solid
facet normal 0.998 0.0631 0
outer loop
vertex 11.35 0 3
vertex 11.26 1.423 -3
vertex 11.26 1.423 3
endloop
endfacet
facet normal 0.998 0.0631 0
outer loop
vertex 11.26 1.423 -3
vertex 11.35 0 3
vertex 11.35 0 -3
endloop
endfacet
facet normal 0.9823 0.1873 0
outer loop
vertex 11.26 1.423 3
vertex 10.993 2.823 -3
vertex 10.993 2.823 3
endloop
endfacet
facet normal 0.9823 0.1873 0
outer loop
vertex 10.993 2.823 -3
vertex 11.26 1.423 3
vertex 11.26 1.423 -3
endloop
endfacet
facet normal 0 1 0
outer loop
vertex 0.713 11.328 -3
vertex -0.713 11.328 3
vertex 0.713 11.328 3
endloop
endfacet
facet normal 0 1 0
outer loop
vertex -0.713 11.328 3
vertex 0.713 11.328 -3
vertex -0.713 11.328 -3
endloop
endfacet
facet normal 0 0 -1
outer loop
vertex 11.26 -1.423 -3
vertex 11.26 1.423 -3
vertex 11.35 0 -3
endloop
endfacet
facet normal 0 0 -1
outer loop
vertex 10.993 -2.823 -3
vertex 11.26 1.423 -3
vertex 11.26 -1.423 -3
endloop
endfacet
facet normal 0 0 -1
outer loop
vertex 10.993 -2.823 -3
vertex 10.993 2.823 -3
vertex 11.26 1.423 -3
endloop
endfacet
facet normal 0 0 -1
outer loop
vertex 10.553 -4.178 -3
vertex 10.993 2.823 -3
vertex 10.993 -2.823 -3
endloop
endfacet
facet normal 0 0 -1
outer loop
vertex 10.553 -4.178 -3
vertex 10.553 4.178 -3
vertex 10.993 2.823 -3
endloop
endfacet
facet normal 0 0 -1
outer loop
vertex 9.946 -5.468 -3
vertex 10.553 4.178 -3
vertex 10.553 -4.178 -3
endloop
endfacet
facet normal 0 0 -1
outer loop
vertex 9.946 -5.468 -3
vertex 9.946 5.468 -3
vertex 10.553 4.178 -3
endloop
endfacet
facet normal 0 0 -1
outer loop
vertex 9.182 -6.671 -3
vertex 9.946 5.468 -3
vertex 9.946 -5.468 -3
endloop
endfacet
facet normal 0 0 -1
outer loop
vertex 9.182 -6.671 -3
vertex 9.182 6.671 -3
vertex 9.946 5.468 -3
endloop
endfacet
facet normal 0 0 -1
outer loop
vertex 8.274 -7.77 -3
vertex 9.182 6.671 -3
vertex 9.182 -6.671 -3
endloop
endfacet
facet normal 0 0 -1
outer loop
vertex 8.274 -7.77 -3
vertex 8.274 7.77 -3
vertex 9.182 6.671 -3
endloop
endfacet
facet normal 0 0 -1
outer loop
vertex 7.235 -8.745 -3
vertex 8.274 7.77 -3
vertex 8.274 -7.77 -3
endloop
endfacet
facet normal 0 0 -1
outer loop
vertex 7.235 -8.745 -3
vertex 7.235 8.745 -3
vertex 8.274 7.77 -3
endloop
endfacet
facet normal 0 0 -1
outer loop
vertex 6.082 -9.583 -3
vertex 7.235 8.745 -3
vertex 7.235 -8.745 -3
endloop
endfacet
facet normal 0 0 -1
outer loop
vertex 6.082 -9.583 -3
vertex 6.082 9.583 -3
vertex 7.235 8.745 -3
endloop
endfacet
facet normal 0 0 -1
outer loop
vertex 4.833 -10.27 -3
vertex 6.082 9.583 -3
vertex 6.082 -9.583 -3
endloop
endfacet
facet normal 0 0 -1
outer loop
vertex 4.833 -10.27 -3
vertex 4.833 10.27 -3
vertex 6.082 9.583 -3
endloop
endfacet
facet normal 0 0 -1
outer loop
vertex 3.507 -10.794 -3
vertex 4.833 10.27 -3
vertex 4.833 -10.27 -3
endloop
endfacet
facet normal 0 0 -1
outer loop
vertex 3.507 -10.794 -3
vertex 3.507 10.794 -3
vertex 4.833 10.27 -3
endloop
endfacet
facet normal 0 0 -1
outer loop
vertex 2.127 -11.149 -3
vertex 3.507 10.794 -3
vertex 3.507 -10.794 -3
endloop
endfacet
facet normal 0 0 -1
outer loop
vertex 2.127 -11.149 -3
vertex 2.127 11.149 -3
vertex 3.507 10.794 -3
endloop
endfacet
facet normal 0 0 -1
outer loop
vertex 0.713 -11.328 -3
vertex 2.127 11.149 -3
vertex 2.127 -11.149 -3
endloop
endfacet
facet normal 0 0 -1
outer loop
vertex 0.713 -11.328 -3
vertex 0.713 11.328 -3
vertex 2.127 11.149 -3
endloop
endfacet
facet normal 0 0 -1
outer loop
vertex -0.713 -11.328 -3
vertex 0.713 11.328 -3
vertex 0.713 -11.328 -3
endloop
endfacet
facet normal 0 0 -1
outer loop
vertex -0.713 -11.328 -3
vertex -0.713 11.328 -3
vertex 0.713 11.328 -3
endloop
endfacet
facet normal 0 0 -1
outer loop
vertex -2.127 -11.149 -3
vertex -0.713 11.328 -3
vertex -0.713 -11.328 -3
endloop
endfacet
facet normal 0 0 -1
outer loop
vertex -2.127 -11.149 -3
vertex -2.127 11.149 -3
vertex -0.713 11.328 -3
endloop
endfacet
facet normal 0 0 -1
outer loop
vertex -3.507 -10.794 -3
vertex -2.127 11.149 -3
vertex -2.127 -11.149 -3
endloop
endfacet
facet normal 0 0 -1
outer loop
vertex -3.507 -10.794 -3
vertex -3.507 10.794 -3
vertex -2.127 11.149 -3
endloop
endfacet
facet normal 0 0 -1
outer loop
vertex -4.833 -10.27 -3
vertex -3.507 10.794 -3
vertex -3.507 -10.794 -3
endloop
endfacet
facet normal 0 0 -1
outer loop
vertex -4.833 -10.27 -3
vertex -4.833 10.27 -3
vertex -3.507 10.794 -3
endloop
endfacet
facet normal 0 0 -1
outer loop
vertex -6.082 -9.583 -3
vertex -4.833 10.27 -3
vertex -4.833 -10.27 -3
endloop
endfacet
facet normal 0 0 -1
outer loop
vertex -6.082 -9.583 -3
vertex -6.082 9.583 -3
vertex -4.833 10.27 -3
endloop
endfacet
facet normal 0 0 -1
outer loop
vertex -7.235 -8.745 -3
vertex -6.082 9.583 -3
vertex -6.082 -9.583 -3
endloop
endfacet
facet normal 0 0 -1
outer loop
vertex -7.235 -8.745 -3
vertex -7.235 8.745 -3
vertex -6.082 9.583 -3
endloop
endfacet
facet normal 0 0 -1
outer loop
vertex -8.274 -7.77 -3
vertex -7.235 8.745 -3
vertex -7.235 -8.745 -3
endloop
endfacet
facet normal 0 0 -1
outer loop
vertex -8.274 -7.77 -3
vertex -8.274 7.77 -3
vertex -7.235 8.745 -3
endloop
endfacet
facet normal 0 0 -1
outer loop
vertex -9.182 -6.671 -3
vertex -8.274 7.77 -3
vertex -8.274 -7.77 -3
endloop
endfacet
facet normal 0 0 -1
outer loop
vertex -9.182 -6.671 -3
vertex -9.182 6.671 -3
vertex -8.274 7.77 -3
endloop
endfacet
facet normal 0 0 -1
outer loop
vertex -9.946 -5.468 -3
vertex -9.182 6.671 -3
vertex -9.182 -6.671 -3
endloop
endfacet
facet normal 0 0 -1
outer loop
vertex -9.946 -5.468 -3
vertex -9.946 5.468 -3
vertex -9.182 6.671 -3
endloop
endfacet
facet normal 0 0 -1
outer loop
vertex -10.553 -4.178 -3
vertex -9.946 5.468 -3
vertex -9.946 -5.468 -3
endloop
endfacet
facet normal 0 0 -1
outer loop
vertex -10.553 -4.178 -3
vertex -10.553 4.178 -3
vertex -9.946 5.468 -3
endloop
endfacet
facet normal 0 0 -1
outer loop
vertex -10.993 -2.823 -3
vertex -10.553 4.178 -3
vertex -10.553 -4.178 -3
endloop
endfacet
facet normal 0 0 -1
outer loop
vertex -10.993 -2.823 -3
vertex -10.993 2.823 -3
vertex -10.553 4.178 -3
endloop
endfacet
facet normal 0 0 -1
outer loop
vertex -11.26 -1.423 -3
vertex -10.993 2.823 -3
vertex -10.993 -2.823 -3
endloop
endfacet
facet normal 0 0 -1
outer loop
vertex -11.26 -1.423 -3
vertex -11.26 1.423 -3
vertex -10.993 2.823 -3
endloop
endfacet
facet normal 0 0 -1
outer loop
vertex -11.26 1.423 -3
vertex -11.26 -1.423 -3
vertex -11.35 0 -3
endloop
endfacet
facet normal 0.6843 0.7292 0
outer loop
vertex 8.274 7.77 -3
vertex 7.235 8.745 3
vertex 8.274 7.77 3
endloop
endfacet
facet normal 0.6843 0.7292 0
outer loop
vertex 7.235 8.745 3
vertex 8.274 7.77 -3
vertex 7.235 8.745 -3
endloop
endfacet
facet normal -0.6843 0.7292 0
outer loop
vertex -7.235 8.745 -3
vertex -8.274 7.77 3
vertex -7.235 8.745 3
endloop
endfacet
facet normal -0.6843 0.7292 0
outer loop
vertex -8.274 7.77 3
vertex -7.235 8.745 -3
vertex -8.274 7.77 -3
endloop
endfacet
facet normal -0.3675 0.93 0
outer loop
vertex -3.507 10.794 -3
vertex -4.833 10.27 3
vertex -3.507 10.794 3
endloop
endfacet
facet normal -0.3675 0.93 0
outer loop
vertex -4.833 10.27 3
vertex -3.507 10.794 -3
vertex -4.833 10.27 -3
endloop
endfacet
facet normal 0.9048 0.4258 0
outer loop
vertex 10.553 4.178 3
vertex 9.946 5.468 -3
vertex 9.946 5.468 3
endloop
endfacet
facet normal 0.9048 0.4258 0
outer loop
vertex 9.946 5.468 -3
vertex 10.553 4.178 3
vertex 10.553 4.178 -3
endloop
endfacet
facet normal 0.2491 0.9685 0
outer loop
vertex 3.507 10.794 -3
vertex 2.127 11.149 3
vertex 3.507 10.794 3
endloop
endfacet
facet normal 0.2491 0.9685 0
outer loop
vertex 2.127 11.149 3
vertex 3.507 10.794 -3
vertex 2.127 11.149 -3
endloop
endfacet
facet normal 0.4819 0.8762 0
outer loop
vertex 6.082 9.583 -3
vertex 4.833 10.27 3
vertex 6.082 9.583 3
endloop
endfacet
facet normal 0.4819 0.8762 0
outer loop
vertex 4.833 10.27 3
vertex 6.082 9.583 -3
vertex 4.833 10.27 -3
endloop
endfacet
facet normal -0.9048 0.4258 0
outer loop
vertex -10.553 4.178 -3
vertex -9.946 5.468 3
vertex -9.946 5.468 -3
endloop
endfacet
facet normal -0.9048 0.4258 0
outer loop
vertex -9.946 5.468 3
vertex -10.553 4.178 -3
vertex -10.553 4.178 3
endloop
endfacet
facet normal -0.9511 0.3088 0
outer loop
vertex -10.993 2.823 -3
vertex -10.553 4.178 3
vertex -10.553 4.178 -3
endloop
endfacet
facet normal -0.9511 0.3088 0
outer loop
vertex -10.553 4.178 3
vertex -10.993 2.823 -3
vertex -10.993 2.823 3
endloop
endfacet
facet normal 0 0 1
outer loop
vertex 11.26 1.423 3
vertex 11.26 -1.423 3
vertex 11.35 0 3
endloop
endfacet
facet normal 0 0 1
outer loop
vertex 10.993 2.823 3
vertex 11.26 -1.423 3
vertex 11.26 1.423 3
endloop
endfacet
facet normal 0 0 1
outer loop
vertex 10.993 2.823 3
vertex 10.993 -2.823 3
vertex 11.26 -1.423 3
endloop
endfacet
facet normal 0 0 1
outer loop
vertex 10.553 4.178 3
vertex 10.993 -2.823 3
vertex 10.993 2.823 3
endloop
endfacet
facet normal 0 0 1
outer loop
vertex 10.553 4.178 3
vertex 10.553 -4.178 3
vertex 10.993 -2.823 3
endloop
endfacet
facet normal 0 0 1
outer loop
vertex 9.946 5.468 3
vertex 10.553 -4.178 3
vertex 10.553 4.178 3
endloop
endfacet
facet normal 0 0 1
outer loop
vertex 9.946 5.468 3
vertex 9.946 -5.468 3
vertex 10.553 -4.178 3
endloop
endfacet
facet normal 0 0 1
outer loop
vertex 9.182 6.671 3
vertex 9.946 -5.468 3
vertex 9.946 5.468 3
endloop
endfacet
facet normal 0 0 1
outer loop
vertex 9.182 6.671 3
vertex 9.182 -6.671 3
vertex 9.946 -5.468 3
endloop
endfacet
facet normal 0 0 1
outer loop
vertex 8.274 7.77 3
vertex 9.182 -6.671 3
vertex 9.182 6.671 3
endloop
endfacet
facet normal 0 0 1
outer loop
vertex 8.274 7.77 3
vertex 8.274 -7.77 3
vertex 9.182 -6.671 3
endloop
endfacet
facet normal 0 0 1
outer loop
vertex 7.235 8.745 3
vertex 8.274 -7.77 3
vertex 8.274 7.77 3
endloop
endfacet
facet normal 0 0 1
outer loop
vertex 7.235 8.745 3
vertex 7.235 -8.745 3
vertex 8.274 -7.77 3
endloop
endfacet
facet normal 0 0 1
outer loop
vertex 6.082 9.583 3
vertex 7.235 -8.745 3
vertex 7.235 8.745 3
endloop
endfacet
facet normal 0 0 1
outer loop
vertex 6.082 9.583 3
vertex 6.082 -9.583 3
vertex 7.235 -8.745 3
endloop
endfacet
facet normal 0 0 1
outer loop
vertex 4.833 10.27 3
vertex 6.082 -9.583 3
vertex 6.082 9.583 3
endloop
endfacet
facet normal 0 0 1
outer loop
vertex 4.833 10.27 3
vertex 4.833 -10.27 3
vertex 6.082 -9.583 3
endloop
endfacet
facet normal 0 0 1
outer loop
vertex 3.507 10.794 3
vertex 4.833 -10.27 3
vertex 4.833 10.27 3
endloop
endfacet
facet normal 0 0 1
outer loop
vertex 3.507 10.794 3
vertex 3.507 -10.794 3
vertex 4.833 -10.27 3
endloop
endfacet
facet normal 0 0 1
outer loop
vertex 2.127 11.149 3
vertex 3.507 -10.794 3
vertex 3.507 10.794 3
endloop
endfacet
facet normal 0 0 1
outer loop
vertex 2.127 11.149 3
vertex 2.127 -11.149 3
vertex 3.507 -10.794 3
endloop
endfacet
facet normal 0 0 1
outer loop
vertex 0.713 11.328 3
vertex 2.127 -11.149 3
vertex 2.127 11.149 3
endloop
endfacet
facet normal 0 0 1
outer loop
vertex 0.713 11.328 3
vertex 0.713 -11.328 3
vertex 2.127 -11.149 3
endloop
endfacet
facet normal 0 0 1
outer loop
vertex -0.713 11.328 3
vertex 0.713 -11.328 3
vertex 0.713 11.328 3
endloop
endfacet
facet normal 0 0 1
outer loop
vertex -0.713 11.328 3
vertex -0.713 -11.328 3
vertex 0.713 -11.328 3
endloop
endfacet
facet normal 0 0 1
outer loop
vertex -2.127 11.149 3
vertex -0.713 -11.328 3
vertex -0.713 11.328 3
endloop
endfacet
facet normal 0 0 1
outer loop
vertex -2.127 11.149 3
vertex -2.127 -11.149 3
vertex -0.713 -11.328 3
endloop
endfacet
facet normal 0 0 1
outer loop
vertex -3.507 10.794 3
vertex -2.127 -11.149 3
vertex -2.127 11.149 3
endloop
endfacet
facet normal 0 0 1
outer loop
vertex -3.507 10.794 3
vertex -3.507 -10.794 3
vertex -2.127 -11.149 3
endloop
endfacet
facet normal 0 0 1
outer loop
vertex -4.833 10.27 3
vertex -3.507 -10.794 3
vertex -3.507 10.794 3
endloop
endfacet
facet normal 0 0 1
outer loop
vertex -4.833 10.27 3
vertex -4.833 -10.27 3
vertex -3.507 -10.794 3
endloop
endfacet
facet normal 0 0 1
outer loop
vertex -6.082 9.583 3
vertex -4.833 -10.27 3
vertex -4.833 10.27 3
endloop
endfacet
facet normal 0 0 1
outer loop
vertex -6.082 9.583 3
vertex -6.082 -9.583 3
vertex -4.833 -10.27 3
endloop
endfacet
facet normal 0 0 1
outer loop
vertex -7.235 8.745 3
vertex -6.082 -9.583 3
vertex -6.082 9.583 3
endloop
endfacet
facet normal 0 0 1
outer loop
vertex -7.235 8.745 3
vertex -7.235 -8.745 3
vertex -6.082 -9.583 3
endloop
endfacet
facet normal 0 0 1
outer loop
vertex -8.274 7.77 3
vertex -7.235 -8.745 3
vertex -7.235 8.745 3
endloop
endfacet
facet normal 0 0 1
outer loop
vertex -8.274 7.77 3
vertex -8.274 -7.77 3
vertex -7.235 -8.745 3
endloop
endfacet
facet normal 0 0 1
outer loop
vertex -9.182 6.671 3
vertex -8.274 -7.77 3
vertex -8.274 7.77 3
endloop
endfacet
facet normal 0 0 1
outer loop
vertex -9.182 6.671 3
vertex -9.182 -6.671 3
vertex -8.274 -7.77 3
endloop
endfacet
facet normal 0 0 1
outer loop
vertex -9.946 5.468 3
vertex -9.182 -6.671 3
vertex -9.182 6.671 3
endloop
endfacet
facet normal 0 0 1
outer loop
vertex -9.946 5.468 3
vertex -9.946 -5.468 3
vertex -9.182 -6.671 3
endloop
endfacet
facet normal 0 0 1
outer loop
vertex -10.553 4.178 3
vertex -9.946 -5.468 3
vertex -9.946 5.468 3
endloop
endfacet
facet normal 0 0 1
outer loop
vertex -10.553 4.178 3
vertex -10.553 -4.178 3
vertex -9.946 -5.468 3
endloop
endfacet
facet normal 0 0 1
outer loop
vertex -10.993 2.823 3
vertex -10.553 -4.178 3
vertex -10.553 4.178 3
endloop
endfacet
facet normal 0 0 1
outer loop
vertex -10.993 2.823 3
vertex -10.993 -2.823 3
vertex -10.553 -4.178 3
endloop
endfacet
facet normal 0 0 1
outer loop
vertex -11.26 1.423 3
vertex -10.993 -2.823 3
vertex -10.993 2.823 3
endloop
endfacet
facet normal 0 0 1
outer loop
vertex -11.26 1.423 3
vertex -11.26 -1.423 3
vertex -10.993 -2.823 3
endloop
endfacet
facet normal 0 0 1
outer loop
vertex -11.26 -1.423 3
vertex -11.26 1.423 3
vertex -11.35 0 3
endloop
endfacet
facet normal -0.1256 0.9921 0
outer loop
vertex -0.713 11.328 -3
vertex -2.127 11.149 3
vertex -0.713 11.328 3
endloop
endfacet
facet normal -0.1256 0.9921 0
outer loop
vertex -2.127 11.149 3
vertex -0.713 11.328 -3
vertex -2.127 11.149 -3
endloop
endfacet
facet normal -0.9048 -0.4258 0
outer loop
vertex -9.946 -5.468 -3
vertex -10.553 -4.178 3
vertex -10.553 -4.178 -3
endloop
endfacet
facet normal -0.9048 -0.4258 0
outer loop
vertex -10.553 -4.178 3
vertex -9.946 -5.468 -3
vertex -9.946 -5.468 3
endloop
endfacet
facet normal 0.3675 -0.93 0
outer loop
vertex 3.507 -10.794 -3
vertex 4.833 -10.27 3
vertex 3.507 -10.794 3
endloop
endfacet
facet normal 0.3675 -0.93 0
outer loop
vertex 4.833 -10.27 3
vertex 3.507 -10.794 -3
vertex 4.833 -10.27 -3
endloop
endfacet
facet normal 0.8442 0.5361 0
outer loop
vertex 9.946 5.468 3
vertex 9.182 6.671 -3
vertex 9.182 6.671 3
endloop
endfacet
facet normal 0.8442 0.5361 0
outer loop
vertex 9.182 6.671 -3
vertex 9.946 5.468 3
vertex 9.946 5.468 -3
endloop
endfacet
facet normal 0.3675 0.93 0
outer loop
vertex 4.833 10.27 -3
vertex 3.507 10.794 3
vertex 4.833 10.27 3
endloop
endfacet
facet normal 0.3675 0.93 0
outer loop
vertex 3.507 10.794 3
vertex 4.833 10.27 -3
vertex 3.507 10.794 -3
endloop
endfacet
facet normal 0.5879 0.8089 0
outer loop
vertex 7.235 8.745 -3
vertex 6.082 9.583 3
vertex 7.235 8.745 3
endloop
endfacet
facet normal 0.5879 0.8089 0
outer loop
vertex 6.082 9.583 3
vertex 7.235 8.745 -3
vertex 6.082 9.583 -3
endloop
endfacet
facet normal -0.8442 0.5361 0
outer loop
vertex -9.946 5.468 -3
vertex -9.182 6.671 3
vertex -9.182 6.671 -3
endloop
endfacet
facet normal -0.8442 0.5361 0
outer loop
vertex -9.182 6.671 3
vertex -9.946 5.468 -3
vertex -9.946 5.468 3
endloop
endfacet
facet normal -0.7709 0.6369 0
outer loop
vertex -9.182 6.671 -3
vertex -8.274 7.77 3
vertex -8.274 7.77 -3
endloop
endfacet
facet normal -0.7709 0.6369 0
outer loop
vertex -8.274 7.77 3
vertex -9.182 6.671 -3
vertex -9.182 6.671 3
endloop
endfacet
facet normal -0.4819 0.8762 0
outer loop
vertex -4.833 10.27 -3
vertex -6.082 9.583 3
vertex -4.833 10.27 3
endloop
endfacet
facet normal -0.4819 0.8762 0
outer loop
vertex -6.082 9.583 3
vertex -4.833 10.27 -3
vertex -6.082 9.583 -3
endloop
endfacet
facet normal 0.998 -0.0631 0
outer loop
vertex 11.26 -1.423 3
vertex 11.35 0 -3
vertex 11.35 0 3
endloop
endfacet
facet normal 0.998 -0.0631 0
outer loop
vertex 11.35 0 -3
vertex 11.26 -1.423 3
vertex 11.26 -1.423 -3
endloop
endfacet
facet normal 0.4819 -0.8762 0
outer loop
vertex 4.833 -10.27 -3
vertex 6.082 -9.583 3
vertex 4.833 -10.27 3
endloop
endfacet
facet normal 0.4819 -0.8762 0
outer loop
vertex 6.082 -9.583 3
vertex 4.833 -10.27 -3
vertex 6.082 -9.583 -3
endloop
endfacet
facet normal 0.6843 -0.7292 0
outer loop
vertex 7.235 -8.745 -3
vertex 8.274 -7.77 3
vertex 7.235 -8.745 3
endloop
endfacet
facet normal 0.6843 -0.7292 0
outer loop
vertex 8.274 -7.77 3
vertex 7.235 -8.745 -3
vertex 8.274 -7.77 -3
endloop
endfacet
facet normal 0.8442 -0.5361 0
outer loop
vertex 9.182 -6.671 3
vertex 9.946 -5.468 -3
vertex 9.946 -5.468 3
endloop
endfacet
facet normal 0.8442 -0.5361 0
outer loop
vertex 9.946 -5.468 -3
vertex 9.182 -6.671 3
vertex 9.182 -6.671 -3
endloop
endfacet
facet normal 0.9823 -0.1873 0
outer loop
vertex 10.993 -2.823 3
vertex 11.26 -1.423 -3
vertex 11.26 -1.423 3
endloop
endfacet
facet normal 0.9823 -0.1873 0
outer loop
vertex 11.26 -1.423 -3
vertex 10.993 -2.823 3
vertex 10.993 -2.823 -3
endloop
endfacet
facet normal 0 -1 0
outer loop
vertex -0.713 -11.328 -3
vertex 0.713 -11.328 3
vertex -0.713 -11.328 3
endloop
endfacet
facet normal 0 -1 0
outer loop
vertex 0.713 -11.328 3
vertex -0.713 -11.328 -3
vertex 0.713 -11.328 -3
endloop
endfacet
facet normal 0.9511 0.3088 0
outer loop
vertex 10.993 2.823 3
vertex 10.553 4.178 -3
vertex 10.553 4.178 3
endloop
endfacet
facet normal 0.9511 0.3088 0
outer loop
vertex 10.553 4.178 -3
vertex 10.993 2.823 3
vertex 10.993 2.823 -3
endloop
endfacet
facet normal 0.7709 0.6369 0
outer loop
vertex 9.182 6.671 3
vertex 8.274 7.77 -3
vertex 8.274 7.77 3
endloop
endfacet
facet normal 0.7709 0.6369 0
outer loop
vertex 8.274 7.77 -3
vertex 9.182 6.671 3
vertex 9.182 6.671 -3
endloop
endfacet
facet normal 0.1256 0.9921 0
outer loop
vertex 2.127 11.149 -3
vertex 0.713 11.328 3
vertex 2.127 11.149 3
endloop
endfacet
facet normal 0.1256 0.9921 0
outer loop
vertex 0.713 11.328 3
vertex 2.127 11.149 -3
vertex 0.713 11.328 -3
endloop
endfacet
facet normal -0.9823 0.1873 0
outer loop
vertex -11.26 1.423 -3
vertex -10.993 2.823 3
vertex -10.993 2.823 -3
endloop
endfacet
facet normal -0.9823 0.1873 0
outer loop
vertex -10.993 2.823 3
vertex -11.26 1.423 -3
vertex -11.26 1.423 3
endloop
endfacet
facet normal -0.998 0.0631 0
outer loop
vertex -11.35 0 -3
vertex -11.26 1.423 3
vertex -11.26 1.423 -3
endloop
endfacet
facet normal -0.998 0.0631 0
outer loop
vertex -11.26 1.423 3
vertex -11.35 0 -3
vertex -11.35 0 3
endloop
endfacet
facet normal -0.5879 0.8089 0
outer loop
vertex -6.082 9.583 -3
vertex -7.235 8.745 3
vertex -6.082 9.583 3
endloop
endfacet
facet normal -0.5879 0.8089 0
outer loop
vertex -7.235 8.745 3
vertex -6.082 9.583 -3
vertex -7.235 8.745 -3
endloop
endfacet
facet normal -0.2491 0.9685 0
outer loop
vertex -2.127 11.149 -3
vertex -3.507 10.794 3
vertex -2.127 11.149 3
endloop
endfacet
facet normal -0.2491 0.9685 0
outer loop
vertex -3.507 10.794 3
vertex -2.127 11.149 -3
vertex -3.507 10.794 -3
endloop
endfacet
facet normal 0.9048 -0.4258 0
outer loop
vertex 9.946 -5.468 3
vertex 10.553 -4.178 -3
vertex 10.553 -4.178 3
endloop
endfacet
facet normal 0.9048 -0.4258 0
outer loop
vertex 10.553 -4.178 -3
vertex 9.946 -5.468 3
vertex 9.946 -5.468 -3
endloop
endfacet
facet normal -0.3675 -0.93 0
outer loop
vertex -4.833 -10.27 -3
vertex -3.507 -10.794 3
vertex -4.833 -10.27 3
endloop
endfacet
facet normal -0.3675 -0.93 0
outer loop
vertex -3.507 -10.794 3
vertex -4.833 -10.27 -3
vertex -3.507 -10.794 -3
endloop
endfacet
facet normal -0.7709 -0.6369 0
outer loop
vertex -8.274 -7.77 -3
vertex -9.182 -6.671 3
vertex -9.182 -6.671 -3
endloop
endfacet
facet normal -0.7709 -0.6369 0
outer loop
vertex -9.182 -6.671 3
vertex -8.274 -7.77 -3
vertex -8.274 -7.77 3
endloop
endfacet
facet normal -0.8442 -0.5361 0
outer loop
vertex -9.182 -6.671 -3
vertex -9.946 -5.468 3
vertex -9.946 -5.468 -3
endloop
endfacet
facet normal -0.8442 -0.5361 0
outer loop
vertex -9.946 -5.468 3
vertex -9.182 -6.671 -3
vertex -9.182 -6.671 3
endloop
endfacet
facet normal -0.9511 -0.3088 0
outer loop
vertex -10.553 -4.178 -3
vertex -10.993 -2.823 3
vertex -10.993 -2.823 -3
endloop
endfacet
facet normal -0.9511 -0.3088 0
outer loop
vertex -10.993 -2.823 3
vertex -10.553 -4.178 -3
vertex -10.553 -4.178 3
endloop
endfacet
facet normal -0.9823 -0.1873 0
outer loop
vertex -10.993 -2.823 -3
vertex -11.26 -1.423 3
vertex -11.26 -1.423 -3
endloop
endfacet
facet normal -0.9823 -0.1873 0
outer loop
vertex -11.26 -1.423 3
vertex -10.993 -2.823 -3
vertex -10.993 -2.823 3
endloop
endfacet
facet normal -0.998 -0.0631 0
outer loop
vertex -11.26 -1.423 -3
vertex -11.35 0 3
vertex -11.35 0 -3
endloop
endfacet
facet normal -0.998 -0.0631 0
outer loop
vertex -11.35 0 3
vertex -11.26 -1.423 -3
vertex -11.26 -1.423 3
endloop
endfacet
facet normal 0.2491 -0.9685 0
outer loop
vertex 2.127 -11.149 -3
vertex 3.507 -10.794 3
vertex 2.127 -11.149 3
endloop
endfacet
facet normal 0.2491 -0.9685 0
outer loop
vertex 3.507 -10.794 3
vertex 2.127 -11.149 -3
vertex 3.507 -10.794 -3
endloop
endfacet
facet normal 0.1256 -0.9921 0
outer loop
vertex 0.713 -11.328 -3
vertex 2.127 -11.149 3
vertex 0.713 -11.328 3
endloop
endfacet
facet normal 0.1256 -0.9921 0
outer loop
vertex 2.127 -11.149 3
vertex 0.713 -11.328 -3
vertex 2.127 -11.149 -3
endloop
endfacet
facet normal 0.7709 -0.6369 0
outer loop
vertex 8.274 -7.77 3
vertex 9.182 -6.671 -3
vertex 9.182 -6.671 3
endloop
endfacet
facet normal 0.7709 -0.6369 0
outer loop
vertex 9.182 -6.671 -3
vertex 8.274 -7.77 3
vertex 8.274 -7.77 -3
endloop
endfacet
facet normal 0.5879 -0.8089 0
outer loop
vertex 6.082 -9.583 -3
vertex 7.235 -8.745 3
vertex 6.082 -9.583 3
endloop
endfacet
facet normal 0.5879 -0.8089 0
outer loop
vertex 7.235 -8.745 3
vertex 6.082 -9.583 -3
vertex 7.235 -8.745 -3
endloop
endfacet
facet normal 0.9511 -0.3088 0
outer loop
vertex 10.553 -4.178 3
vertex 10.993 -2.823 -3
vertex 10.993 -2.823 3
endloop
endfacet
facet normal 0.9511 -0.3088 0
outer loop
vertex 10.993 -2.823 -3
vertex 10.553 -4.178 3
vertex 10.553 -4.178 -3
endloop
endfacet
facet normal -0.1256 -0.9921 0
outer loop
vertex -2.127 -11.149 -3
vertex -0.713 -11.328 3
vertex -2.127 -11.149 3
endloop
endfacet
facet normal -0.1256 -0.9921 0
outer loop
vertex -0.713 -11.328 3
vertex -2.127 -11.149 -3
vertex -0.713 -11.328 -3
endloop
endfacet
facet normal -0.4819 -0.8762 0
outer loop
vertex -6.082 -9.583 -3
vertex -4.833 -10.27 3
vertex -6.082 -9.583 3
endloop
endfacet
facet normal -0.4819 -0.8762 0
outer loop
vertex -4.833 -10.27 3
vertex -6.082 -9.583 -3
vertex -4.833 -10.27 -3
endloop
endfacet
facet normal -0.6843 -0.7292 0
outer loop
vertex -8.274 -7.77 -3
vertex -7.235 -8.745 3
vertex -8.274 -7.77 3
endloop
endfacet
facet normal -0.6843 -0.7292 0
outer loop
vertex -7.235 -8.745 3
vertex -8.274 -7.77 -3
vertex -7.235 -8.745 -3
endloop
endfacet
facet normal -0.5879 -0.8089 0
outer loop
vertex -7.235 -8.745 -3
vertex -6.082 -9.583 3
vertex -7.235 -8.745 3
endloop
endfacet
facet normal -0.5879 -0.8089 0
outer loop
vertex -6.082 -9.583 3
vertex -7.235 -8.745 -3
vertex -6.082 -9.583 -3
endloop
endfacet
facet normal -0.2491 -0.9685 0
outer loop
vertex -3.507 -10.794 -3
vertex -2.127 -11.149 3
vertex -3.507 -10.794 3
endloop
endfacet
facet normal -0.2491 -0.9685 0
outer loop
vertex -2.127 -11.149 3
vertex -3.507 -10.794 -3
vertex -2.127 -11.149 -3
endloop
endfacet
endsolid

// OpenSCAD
$fn = 50;


difference() {
	union() {
		translate(v = [0, 0, -3.0000000000]) {
			cylinder(h = 6, r = 11.3500000000);
		}
	}
	union() {
		translate(v = [0, 0, -100.0000000000]) {
			cylinder(h = 200, r = 0);
		}
	}
}
